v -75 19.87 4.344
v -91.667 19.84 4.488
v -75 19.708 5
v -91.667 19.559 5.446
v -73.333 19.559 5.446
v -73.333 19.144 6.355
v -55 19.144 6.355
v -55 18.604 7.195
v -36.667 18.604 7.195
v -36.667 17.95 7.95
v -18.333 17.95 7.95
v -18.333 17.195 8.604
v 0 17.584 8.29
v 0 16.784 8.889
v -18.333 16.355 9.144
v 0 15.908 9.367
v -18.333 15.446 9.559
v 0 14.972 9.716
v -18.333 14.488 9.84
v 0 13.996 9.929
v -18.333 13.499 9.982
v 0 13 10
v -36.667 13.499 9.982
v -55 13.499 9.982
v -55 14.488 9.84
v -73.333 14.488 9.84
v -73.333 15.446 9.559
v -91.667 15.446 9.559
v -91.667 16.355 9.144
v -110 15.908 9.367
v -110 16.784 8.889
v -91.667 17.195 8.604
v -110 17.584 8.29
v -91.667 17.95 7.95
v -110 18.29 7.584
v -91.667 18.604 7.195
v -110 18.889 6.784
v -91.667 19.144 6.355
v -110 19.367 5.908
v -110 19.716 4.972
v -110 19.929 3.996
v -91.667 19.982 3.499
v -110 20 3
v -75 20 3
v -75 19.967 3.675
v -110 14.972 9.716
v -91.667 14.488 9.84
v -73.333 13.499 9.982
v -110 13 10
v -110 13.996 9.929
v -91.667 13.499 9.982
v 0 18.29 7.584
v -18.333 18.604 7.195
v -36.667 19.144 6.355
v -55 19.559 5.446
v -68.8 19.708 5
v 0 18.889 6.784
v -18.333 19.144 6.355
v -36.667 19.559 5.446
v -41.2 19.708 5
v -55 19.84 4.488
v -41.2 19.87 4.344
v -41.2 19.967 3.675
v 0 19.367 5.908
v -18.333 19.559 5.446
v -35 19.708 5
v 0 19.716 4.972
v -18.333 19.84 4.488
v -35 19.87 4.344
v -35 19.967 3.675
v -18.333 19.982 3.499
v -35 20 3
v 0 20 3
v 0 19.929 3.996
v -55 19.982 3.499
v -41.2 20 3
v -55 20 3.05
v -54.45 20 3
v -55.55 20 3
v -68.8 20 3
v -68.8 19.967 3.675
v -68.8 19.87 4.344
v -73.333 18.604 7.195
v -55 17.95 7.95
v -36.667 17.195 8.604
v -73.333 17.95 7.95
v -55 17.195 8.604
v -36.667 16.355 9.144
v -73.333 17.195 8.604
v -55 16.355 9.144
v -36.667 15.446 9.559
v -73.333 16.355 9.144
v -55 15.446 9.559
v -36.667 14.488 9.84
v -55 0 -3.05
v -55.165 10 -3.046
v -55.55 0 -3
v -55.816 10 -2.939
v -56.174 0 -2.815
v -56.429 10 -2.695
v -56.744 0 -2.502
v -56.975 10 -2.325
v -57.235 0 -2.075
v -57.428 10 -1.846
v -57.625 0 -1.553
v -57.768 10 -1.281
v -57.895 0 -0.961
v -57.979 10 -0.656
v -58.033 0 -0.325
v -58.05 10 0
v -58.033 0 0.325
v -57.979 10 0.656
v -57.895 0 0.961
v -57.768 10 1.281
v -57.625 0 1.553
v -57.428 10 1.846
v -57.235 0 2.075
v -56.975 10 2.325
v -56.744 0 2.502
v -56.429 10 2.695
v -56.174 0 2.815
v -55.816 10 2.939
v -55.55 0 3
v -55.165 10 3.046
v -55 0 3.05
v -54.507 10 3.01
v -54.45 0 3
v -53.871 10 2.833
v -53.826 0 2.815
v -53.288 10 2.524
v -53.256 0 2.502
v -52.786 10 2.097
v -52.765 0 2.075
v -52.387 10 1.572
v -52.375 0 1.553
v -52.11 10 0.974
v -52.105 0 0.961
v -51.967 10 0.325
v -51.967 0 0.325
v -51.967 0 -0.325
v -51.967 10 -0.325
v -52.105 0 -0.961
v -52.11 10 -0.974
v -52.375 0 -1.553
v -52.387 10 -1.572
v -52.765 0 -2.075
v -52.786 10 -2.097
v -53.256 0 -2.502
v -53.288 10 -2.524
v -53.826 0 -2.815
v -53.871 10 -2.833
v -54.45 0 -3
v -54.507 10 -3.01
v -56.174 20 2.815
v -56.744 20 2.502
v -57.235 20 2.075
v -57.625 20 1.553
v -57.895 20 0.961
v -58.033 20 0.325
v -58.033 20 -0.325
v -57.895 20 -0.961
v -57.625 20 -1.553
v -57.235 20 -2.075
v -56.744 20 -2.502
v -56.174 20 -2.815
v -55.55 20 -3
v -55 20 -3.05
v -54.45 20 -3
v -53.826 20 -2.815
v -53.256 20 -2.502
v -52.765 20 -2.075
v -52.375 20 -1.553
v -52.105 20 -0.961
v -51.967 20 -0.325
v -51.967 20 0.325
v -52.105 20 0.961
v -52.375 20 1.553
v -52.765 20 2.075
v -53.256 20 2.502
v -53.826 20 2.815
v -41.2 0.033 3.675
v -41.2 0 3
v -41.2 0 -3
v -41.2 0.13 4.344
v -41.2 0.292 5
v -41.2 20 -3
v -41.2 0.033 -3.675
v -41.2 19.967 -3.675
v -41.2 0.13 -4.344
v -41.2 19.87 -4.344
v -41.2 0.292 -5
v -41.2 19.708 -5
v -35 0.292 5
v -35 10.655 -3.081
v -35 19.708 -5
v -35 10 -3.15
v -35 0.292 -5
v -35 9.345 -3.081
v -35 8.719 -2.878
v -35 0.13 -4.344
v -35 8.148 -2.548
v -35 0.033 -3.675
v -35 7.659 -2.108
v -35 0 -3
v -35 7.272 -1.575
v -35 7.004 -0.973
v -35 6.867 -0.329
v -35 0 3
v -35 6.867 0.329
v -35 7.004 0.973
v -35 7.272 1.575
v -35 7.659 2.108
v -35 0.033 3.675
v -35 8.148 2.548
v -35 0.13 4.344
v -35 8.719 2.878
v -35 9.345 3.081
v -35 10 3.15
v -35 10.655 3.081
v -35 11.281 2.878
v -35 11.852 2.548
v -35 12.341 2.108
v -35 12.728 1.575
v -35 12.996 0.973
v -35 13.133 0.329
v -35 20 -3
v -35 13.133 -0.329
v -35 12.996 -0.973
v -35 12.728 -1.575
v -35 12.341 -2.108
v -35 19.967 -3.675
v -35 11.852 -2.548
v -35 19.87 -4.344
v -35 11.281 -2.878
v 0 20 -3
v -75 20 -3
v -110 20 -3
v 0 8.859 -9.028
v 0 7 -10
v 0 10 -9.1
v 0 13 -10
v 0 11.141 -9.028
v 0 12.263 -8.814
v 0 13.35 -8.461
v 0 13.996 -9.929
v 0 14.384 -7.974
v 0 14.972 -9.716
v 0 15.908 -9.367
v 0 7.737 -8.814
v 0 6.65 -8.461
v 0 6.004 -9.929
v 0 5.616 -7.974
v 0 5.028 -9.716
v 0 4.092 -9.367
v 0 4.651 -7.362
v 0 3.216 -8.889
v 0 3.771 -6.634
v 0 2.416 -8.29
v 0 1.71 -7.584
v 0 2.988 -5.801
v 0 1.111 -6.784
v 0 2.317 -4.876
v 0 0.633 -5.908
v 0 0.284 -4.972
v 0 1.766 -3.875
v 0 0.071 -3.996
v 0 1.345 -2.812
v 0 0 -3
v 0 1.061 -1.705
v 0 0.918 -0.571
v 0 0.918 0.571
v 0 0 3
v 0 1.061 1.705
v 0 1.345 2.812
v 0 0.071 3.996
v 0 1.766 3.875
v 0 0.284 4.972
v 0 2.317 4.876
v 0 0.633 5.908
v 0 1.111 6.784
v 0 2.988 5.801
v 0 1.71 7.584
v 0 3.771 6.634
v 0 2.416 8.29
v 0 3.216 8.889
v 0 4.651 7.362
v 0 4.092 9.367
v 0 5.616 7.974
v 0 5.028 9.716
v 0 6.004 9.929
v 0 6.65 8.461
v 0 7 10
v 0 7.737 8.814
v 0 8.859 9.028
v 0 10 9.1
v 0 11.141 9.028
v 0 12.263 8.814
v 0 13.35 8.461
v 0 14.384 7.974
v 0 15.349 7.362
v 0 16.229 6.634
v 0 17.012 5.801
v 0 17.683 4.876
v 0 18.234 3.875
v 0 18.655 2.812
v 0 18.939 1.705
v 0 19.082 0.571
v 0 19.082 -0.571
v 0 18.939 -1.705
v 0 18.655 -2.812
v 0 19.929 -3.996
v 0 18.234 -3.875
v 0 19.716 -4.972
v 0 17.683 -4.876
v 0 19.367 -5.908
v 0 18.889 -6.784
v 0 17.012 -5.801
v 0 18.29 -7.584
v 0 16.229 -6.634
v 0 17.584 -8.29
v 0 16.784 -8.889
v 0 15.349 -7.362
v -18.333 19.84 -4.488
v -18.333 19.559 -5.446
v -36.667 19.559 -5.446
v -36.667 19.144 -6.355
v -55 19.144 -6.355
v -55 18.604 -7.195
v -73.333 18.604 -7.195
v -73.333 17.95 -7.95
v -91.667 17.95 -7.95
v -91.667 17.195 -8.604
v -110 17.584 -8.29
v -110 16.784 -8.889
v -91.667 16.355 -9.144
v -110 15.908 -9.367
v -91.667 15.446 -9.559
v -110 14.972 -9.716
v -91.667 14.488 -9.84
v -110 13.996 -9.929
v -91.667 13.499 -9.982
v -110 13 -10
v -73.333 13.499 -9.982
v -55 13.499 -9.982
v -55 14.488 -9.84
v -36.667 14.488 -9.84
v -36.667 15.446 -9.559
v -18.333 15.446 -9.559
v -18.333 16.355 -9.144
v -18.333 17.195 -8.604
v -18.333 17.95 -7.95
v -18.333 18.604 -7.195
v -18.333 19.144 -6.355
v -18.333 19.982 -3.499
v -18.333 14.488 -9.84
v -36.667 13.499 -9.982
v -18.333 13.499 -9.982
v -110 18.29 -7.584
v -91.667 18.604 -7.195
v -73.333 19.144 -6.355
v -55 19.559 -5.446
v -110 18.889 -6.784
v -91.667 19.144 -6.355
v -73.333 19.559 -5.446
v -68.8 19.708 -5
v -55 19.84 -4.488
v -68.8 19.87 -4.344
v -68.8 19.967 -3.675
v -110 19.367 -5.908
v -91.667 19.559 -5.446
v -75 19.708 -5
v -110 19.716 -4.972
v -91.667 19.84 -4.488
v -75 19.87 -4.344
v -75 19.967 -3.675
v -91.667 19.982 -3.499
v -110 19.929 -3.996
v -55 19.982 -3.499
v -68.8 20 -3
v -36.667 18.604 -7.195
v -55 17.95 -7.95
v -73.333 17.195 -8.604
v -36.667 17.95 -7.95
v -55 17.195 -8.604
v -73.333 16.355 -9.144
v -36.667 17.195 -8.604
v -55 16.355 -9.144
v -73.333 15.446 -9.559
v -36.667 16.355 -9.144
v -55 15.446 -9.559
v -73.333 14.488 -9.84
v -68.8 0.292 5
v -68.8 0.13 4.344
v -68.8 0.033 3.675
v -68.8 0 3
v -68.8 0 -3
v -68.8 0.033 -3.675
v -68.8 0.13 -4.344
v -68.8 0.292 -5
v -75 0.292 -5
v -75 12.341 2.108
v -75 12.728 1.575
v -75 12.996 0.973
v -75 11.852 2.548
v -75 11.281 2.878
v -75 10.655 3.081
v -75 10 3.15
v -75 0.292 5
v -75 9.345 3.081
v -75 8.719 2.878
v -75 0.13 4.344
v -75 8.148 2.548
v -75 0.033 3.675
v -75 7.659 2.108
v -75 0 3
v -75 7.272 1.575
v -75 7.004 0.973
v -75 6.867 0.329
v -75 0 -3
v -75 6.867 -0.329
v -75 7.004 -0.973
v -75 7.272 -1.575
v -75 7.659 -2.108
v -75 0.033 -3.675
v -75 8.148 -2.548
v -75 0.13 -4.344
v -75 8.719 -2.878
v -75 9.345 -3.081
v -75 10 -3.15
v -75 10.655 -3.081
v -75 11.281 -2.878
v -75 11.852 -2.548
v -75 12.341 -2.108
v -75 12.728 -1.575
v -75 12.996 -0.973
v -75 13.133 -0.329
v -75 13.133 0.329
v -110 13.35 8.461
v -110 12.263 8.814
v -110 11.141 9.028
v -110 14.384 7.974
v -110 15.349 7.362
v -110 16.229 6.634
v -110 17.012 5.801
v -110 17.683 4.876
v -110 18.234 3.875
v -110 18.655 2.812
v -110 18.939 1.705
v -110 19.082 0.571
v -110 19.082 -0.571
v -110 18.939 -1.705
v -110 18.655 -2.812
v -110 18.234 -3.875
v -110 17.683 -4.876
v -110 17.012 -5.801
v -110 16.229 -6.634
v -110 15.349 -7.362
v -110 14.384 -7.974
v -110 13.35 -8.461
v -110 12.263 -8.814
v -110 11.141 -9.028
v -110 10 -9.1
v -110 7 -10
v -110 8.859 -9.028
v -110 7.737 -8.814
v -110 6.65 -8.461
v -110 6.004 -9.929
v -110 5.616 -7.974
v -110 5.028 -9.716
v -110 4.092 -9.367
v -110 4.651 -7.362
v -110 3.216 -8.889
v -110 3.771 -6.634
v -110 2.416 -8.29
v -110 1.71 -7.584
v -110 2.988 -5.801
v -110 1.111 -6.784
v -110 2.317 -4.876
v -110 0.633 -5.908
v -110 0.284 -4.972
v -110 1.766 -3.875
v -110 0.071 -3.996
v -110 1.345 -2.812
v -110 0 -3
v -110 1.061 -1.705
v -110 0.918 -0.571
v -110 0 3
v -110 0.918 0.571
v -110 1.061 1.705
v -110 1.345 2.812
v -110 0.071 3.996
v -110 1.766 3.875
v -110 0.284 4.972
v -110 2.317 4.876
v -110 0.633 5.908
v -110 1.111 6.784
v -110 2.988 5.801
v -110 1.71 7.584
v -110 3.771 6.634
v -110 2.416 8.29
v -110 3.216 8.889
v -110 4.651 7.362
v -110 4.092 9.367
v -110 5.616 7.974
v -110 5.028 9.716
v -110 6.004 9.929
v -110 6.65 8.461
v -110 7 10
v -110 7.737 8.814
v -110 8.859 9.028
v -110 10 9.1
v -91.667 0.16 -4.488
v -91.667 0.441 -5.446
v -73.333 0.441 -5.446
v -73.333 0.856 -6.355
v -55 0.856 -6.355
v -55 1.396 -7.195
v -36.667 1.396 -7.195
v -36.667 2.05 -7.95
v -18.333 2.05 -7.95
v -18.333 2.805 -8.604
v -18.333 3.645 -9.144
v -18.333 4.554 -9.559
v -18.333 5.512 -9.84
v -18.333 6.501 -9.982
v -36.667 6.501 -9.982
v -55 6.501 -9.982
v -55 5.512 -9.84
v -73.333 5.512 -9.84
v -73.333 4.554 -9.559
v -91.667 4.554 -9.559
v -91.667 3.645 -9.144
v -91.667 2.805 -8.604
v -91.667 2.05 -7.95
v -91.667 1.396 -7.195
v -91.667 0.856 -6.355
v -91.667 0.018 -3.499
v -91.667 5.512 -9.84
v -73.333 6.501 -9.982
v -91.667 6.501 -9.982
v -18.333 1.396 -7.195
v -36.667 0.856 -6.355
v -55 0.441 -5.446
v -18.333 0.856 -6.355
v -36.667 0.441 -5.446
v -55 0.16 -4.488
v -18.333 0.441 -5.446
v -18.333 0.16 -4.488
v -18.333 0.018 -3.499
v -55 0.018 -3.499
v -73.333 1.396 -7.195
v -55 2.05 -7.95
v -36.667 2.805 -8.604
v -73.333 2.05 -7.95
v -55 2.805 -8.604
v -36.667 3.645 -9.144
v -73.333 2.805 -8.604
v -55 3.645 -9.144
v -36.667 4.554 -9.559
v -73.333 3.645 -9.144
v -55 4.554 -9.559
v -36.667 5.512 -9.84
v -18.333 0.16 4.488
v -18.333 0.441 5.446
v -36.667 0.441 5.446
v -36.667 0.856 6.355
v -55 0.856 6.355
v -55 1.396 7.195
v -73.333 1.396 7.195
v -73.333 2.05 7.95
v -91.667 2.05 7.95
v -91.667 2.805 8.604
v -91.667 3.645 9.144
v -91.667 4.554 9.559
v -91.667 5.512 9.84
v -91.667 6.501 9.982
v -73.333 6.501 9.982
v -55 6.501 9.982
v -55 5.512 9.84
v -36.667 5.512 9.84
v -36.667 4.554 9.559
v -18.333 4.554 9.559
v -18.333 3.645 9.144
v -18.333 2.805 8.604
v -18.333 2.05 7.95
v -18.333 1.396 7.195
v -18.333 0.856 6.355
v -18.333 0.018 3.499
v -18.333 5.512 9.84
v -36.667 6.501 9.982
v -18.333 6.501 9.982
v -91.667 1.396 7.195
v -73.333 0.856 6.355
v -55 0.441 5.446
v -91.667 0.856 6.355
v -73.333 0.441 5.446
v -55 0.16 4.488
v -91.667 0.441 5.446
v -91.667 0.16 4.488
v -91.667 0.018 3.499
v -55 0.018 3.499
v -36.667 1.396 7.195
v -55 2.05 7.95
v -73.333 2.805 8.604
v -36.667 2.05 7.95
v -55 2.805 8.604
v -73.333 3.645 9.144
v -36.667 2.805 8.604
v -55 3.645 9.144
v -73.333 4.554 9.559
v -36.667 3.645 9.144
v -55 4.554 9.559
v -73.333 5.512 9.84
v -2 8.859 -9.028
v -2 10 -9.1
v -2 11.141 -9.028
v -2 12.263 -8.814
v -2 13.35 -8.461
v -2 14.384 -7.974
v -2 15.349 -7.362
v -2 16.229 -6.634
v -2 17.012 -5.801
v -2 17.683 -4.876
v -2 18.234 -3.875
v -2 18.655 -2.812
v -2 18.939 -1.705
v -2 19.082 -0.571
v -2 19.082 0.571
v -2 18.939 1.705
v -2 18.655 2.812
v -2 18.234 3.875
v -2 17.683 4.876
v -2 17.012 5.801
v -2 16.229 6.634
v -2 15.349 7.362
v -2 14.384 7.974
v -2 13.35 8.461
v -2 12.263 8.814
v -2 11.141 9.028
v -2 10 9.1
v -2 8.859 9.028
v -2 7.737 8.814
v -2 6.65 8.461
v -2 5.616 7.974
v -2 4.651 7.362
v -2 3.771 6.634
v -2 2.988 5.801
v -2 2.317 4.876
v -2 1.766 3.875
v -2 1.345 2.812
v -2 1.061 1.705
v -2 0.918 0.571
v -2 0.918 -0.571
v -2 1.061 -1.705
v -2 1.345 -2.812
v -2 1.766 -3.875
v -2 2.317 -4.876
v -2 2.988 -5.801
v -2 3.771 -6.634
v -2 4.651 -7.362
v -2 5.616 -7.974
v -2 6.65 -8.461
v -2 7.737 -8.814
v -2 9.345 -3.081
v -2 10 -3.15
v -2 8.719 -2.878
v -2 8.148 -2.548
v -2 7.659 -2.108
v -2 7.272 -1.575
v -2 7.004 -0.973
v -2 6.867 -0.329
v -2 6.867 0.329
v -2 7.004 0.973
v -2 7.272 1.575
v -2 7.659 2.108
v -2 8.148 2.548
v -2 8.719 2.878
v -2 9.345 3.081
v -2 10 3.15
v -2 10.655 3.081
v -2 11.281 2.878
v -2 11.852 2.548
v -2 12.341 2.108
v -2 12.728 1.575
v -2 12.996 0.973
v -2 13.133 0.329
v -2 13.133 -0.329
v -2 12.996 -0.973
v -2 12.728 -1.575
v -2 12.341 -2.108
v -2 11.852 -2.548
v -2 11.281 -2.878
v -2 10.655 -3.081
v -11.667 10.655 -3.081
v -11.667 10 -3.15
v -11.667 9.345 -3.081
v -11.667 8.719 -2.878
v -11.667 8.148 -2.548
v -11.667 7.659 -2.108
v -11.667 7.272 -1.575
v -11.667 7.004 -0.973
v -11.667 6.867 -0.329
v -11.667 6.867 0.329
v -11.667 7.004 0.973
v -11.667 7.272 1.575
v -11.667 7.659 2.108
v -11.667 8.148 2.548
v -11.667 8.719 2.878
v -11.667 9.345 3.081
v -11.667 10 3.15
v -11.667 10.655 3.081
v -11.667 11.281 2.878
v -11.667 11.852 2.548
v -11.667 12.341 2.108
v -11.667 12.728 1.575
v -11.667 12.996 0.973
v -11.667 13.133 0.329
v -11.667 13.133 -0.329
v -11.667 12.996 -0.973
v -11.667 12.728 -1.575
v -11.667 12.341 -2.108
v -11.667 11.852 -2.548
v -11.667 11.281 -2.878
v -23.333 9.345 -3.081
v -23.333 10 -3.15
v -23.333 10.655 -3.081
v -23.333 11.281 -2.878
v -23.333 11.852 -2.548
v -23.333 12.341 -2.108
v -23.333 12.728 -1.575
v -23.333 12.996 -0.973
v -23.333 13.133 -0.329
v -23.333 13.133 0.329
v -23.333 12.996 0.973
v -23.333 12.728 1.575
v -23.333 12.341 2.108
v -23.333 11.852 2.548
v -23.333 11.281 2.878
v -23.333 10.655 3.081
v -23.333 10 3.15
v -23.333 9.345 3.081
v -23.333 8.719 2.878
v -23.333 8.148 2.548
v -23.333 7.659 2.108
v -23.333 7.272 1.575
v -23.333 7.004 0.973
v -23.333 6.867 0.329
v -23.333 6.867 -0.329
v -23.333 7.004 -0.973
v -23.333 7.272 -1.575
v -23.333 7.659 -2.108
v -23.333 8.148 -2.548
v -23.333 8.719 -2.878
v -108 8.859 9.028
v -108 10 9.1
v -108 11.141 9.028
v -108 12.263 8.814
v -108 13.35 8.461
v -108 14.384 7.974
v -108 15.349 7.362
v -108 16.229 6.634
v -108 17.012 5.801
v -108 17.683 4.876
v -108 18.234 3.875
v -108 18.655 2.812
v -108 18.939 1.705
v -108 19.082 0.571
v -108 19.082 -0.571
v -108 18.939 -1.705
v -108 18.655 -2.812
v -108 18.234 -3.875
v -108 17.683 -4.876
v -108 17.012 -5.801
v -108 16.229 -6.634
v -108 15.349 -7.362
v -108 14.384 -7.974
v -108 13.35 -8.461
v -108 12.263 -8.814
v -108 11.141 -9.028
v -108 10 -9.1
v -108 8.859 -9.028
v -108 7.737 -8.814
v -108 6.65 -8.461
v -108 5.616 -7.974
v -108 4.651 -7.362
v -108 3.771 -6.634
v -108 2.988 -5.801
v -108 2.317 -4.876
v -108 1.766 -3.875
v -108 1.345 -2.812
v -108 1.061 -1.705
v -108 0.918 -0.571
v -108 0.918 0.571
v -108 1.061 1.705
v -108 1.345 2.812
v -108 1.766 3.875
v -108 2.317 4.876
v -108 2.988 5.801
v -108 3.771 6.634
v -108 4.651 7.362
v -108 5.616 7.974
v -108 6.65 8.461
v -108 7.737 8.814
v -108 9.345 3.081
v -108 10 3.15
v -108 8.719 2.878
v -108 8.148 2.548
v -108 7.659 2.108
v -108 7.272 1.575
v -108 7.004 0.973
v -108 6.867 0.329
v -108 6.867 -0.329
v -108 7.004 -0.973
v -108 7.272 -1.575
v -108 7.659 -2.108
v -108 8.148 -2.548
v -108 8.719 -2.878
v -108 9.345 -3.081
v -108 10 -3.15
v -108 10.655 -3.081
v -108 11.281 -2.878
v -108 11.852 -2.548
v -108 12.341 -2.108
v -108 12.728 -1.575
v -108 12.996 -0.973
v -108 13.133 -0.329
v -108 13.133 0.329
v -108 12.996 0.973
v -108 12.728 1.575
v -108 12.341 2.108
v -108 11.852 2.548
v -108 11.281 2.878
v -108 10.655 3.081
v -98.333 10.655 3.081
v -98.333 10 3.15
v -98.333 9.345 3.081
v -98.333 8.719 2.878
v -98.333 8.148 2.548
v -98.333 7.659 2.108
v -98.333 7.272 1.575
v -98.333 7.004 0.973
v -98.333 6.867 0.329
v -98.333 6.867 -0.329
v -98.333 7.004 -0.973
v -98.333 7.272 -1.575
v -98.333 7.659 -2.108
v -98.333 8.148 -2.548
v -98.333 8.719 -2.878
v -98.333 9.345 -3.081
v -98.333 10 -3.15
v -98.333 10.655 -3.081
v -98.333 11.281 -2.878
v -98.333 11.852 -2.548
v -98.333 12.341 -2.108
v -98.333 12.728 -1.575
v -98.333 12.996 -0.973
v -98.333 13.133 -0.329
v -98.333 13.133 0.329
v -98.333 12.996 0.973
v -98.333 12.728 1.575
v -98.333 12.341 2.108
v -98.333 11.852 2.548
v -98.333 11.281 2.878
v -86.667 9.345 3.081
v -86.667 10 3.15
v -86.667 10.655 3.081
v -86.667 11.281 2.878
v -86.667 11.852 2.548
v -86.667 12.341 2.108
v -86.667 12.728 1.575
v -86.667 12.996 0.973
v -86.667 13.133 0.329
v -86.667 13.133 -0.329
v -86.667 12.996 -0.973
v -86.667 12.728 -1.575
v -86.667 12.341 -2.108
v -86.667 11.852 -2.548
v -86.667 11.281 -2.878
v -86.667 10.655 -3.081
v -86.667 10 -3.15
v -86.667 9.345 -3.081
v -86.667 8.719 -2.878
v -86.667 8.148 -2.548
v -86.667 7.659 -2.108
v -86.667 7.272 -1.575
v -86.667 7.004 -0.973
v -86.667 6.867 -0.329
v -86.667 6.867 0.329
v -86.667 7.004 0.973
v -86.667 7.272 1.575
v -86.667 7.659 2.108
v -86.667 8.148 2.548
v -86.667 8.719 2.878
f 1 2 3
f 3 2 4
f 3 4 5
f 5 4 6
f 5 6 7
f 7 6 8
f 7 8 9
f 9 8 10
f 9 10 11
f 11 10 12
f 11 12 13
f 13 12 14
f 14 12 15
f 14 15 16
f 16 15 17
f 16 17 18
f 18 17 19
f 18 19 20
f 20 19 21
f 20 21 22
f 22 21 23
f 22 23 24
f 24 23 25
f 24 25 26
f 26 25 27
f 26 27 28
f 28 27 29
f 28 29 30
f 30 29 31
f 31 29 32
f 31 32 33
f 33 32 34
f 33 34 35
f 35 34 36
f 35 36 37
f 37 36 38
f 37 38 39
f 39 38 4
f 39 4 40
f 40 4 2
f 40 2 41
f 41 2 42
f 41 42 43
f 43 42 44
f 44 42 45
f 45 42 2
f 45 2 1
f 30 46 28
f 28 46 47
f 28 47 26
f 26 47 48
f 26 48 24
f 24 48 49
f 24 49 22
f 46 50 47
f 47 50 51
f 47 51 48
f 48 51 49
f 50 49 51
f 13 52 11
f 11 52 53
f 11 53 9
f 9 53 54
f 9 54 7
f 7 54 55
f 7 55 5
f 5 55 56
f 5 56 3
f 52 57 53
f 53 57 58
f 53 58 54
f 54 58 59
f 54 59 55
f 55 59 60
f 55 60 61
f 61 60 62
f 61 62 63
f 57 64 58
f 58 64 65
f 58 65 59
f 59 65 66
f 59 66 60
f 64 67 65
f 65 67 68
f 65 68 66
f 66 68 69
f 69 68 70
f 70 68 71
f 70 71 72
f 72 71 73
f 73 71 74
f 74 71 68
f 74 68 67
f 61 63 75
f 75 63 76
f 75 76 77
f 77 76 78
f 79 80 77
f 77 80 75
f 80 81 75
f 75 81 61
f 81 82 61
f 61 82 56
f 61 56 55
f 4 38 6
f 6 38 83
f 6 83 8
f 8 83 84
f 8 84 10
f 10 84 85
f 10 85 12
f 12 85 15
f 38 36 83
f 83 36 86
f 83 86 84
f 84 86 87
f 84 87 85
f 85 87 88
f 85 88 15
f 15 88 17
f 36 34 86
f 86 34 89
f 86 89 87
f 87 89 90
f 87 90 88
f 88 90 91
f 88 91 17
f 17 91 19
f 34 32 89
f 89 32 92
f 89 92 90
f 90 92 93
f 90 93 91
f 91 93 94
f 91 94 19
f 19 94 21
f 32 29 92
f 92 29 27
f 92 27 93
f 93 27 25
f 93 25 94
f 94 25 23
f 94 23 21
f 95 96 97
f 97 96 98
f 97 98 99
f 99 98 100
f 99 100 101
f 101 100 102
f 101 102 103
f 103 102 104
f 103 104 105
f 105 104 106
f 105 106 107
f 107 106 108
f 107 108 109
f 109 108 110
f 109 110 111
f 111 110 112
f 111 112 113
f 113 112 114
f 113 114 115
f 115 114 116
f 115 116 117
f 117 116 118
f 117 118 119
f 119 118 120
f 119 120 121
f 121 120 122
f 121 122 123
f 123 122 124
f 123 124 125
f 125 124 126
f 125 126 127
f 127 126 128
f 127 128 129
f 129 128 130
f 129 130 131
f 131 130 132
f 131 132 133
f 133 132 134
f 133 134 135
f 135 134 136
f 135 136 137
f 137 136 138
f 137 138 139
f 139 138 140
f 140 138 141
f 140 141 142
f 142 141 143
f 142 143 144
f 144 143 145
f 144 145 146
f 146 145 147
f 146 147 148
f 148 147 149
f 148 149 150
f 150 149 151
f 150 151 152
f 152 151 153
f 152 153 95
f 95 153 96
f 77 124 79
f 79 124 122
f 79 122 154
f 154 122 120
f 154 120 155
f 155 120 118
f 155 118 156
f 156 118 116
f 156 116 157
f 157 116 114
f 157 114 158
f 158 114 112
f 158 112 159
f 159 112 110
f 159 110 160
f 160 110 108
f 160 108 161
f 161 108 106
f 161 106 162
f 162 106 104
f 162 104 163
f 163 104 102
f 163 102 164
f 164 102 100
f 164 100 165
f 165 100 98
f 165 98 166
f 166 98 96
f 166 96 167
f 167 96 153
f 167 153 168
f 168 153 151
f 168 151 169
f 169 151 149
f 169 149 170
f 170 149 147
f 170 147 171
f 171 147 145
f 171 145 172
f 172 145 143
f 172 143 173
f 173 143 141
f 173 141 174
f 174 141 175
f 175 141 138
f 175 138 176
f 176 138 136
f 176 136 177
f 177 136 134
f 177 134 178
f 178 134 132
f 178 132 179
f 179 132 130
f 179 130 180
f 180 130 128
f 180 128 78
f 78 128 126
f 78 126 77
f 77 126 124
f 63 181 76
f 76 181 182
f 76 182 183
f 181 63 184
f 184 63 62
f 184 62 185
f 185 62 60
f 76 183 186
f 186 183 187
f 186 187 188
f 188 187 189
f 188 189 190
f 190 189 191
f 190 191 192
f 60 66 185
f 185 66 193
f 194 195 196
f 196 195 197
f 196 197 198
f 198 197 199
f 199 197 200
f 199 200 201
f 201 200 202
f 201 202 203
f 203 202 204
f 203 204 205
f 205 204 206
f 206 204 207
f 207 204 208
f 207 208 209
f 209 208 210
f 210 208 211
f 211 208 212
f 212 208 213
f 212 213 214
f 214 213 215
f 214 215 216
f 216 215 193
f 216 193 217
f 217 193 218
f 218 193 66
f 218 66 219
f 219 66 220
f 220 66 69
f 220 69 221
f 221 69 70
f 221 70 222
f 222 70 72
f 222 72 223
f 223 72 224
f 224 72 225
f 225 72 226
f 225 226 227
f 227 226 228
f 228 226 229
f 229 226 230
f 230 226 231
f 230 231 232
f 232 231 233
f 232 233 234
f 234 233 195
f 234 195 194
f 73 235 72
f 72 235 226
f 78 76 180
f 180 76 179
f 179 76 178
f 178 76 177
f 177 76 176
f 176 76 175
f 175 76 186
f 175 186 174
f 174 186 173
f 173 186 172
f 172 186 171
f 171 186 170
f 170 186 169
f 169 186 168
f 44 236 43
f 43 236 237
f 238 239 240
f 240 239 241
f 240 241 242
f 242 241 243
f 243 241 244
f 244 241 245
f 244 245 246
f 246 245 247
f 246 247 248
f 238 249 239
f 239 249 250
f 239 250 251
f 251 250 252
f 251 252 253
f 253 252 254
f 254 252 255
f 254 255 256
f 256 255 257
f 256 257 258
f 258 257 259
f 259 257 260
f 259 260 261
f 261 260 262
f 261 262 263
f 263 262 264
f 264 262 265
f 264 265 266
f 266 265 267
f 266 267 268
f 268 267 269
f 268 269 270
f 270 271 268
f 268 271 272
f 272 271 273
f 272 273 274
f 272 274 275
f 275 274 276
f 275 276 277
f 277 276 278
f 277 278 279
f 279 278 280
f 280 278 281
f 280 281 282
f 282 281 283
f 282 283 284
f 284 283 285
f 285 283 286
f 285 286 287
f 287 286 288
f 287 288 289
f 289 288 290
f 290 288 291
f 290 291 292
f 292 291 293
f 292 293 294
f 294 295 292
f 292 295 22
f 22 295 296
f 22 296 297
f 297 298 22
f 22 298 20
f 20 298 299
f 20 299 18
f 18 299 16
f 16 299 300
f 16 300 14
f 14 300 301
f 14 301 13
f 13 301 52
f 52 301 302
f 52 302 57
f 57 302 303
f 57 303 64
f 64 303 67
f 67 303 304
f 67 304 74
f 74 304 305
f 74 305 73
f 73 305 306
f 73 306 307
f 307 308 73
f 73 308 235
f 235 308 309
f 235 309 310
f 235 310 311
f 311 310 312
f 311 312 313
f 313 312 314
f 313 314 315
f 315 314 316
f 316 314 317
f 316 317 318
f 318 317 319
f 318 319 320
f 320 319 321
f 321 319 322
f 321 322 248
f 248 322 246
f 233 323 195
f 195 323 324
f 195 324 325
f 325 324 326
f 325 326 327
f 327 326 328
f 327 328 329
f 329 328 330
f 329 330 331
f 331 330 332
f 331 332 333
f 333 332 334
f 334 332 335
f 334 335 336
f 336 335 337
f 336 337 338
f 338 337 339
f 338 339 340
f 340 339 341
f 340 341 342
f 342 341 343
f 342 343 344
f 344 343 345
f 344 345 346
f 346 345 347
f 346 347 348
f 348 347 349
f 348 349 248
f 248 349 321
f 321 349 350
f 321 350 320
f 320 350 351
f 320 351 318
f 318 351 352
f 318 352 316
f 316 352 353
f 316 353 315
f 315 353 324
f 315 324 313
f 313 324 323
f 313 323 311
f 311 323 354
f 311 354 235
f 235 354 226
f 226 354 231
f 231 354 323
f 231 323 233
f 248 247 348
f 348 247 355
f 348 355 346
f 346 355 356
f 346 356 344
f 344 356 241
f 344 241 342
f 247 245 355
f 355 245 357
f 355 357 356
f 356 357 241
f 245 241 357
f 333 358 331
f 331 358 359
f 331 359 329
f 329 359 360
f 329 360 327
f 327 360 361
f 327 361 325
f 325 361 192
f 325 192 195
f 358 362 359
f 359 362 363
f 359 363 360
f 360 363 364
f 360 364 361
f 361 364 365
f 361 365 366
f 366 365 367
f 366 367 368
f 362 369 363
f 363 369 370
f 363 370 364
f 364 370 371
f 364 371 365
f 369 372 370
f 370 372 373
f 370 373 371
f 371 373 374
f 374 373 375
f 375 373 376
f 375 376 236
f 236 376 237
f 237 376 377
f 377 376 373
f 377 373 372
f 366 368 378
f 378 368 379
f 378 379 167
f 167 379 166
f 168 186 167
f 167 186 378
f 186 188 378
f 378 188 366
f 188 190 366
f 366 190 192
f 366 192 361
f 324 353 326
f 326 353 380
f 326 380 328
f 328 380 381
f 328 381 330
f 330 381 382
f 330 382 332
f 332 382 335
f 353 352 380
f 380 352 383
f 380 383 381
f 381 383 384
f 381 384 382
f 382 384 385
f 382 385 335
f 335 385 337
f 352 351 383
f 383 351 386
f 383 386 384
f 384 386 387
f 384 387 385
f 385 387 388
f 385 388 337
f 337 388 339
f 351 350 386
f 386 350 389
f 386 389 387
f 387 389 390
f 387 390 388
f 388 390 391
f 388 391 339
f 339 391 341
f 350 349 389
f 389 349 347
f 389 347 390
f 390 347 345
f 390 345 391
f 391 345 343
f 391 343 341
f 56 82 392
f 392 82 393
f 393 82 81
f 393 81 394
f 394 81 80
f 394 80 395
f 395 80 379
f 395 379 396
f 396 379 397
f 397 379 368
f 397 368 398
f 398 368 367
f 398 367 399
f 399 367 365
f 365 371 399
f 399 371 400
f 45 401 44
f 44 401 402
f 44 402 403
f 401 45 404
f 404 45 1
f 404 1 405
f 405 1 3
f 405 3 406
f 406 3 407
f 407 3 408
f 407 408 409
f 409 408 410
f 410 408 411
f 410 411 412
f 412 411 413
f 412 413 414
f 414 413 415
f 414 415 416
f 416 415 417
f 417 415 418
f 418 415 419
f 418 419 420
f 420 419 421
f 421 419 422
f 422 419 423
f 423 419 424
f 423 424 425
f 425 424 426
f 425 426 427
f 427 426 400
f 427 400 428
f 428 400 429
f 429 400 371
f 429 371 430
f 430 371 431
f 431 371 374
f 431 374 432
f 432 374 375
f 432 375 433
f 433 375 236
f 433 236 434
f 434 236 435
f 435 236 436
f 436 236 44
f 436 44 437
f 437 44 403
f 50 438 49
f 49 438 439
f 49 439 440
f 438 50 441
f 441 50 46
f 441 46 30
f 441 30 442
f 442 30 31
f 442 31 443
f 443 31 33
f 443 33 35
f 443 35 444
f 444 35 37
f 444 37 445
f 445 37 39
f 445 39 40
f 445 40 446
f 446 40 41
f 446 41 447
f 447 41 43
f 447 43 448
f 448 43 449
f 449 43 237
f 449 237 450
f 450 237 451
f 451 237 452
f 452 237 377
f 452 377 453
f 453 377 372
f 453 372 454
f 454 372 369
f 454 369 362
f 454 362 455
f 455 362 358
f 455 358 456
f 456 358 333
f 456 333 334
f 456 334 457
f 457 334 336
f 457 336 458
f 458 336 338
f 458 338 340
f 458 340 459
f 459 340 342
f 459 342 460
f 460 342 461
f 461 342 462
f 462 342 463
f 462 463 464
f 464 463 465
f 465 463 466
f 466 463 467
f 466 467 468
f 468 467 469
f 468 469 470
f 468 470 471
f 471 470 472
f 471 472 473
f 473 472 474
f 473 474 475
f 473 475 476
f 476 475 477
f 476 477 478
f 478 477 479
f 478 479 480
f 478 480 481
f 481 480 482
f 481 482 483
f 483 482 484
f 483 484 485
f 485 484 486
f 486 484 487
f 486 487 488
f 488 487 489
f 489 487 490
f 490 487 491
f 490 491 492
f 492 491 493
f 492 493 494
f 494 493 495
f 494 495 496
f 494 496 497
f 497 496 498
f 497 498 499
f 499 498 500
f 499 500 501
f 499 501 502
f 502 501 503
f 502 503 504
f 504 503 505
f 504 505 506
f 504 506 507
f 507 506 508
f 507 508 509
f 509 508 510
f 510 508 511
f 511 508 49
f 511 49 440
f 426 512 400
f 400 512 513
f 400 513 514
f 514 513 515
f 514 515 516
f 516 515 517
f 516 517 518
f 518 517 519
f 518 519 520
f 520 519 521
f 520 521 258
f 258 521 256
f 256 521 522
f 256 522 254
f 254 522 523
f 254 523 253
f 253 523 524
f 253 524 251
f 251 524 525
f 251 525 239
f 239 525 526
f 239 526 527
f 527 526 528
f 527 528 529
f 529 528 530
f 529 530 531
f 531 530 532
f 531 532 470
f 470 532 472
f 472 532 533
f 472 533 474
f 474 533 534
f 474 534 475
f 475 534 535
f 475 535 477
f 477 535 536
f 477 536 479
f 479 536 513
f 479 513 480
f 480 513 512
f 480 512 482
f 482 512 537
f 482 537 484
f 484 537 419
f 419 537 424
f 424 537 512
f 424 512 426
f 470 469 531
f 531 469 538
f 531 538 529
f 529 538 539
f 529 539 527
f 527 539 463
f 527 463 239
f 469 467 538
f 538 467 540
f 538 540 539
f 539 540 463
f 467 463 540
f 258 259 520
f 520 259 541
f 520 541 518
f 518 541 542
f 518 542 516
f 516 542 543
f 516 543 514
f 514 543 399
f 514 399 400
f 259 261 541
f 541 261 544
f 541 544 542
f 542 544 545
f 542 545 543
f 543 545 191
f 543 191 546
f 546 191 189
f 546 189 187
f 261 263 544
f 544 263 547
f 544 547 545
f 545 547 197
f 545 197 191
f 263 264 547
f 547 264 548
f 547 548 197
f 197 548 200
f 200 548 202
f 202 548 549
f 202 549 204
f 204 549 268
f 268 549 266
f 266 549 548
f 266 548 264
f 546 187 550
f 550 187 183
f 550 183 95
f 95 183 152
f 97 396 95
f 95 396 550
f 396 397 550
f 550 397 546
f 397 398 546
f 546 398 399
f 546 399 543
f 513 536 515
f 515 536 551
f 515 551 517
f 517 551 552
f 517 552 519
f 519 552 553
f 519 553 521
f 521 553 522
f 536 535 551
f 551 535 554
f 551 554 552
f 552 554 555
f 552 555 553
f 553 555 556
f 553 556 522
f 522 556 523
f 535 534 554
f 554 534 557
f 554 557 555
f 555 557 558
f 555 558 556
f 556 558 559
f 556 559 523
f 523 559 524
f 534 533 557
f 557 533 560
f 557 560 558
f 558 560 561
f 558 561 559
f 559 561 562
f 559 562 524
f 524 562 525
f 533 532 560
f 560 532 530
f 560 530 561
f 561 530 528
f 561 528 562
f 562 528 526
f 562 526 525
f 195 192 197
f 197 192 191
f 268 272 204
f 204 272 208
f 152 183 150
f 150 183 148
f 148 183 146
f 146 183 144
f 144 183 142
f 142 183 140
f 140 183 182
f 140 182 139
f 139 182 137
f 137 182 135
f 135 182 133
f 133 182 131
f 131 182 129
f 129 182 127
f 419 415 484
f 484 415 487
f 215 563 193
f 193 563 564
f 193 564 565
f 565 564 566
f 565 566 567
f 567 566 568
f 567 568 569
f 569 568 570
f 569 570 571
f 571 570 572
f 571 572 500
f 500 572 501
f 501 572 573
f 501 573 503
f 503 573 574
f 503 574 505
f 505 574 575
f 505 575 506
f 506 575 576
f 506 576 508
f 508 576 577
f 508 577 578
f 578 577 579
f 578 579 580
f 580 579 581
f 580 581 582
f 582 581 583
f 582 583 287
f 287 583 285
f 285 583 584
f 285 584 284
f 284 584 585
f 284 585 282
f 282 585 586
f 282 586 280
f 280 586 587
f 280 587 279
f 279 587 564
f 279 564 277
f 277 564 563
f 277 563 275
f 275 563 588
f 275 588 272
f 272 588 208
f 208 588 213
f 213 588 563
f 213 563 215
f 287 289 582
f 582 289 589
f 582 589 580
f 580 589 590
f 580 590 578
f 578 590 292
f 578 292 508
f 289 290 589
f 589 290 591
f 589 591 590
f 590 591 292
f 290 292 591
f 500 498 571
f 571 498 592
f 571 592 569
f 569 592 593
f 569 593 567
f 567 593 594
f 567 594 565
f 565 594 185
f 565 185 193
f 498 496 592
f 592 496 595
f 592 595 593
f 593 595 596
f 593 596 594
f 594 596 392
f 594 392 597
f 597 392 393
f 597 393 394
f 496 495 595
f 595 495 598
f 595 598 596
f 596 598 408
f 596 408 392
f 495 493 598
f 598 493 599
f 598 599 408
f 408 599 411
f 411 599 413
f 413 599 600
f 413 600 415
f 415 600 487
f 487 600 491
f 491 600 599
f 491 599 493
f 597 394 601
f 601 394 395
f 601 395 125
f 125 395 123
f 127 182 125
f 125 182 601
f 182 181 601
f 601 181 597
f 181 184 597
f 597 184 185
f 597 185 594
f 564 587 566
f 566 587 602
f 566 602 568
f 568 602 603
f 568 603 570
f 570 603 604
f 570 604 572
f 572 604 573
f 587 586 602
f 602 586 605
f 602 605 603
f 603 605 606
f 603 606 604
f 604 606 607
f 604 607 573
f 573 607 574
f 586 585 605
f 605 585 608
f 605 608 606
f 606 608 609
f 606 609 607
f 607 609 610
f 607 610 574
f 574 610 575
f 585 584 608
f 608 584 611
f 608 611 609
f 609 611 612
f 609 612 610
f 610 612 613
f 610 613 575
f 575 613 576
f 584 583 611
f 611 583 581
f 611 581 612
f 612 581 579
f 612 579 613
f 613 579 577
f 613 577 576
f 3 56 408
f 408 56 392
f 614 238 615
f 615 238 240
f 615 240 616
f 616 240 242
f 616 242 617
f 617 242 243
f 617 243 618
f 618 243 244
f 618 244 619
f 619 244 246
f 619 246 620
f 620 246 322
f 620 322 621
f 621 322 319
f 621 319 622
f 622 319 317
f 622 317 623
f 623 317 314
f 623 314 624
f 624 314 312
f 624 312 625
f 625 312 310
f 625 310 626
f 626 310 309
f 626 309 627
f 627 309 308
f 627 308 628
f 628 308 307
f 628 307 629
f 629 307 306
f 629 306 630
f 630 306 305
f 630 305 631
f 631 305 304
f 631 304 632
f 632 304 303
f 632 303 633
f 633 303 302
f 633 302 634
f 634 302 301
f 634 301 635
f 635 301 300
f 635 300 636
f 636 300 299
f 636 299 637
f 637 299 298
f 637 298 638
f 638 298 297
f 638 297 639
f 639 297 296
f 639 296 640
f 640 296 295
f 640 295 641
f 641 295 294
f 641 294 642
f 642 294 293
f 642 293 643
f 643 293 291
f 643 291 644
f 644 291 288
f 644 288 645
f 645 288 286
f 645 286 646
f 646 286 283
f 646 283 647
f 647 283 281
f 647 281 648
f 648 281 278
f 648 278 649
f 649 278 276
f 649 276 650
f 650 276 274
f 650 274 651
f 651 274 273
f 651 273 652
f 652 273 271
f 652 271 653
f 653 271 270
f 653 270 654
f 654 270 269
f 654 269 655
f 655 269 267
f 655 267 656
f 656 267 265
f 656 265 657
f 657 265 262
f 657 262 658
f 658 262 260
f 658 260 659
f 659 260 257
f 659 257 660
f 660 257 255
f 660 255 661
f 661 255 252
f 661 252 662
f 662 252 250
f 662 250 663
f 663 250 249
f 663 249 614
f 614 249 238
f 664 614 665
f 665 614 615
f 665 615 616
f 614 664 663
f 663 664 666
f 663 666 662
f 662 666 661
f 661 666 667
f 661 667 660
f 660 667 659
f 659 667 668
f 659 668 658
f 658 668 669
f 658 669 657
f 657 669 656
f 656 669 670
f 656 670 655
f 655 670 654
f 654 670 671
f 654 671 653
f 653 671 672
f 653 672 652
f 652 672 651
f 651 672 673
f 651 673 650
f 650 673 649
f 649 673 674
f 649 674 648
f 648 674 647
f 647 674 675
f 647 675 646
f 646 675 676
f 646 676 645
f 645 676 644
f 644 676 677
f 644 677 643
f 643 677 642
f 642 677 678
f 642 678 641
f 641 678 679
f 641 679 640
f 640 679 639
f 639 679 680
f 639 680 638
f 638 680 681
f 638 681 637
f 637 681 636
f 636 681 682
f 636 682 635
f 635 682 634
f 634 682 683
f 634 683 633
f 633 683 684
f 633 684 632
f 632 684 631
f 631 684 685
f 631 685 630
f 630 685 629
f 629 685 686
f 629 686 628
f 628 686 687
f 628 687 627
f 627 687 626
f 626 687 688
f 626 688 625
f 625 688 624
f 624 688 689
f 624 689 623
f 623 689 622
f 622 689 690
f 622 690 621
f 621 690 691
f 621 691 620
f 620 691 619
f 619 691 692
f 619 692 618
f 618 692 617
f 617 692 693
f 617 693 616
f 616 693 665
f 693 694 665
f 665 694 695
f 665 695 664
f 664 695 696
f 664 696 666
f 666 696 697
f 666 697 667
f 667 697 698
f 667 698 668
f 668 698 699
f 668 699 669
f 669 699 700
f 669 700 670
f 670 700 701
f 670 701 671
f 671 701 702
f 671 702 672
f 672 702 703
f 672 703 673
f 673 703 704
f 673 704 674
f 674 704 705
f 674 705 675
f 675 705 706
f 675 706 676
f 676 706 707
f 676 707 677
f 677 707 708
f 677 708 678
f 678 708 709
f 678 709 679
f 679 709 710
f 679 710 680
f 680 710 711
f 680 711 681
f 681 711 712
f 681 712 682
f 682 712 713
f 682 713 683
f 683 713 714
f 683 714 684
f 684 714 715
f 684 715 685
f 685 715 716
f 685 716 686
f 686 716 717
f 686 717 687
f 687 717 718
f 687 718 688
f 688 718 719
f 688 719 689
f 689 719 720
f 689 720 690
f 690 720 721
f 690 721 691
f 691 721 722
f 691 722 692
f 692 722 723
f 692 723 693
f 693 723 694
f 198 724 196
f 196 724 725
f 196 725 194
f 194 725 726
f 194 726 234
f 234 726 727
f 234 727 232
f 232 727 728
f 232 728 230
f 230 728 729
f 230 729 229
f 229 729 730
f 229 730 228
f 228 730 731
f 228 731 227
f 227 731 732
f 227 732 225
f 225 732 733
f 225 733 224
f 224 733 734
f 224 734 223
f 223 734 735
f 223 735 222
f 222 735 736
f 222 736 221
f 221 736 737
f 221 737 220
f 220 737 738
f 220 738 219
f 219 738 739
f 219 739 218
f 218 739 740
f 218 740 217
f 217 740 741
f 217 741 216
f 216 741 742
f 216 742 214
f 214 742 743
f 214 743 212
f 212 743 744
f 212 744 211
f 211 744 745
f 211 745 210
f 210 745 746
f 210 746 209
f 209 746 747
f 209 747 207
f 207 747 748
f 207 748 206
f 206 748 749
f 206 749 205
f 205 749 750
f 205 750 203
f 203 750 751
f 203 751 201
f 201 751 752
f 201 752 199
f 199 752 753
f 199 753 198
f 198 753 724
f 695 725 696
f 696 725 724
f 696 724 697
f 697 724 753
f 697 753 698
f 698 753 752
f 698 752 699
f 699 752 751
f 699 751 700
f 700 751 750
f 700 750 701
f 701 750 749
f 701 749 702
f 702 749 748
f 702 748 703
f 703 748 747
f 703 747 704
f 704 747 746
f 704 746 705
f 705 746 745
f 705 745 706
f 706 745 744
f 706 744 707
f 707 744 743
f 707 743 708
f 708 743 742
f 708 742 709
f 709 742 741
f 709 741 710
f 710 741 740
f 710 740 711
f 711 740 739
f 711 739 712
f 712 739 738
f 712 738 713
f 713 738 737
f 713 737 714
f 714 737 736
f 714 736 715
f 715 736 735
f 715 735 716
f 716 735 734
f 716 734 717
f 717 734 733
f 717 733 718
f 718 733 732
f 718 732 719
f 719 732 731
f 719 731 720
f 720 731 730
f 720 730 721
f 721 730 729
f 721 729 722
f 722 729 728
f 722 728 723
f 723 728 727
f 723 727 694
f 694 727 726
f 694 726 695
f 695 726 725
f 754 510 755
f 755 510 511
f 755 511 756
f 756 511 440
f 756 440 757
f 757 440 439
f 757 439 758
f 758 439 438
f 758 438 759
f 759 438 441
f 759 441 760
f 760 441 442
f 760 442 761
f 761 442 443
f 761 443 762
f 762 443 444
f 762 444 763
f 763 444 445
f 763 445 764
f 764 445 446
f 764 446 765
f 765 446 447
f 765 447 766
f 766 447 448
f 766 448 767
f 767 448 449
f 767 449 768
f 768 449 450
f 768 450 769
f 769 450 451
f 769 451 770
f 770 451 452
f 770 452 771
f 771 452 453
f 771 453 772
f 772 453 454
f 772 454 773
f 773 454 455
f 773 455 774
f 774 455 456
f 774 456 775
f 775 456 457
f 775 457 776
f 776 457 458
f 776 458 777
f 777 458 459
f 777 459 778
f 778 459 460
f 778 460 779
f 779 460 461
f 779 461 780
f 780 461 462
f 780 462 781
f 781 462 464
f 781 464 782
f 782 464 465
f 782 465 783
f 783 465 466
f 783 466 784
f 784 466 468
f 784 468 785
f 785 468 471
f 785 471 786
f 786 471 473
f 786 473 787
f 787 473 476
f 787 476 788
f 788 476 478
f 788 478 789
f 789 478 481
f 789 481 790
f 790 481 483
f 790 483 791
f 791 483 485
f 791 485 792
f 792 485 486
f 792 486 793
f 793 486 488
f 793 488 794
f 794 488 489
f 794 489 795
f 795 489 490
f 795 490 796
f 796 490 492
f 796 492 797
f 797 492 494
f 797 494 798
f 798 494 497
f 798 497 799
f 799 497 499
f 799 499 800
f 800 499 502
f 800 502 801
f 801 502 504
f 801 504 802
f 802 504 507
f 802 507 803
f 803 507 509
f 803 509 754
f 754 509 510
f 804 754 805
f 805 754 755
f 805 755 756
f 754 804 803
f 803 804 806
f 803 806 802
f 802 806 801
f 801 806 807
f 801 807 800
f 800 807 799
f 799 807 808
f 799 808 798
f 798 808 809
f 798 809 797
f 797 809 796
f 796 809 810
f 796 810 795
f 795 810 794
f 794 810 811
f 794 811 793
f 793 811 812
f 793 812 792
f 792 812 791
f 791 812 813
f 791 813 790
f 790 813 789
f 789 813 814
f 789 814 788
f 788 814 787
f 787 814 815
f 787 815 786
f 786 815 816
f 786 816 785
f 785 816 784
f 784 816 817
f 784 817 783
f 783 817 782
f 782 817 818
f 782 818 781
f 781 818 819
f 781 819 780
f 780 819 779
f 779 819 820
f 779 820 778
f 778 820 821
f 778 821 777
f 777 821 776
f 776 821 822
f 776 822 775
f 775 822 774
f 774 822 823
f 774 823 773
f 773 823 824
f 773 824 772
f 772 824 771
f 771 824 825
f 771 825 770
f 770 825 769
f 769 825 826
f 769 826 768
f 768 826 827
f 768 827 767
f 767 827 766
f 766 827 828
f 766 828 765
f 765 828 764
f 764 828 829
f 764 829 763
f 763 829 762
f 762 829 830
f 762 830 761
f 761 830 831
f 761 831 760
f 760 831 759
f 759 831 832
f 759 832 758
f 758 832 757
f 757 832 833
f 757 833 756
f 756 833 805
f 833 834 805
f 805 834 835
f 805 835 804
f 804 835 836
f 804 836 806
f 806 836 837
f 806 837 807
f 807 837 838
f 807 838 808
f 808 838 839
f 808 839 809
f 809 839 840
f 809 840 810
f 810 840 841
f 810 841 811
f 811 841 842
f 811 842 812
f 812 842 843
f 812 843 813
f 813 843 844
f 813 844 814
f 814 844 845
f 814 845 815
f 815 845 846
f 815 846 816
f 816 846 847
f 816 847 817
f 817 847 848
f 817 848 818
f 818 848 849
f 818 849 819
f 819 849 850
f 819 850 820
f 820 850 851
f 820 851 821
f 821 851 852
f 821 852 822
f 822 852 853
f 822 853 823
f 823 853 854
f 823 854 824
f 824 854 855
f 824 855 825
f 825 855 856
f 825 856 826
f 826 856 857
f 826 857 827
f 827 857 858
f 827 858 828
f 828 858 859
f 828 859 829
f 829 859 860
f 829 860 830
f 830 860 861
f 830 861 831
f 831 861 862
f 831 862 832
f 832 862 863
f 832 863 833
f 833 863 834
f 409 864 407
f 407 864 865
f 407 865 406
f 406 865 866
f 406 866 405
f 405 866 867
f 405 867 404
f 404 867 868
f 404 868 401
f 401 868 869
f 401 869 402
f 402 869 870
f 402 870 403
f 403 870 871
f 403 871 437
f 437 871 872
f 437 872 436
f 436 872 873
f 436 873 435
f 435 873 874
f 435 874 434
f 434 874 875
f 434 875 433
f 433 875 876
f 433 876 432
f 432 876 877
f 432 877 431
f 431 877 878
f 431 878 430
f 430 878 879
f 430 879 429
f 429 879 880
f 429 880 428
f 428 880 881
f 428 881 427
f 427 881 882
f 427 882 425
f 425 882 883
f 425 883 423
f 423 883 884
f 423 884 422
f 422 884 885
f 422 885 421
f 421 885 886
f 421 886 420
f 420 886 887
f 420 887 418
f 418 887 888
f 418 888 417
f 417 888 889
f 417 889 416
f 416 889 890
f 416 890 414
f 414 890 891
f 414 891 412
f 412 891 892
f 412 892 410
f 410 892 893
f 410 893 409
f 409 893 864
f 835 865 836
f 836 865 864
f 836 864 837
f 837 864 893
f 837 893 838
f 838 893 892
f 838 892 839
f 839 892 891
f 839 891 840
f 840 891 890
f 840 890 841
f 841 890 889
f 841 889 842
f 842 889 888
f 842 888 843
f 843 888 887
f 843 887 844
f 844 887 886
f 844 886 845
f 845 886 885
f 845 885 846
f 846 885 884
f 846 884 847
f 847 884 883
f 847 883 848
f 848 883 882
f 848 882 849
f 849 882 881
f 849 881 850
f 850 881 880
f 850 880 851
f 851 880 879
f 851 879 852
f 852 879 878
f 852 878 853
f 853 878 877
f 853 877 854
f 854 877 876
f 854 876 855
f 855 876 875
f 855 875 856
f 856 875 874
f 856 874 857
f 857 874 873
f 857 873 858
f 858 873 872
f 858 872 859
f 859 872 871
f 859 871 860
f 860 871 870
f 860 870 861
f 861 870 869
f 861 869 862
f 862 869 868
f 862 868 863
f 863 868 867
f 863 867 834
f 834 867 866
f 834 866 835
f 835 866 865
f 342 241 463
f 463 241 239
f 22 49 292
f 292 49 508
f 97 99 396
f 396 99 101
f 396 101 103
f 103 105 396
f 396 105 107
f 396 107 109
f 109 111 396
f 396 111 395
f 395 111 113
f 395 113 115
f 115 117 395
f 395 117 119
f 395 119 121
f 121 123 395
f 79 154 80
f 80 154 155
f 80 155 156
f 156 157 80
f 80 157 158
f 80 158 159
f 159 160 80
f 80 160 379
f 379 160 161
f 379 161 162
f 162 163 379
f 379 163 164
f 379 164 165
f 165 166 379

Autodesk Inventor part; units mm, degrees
ref_plane "YZ Plane" through (0, 0, 0) normal (1, 0, 0) x (0, 1, 0)
ref_plane "XZ Plane" through (0, 0, 0) normal (0, 1, 0) x (-1, 0, 0)
ref_plane "XY Plane" through (0, 0, 0) normal (0, 0, 1) x (1, 0, 0)
sketch "Boceto1" plane through (0, 0, 0) normal (0, 1, 0) x (-1, 0, 0)
  line L0 (0, 10) -> (110, 10)
  line L1 (110, 10) -> (110, -10)
  line L2 (110, -10) -> (0, -10)
  line L3 (0, -10) -> (0, 10)
  line L4 (0, 0) -> (110, 0) construction
  line L5 (68.8, -5) -> (75, -5)
  line L6 (75, -5) -> (75, 5)
  line L7 (75, 5) -> (68.8, 5)
  line L8 (68.8, 5) -> (68.8, -5)
  line L9 (71.9, -5) -> (71.9, -10) construction
  line L10 (71.9, 5) -> (71.9, 10) construction
  line L11 (55, -10) -> (55, 10) construction
  line L12 (41.2, -5) -> (35, -5)
  line L13 (35, -5) -> (35, 5)
  line L14 (35, 5) -> (41.2, 5)
  line L15 (41.2, 5) -> (41.2, -5)
  line L16 (58.6062, -3.6062) -> (51.3938, -3.6062) construction
  line L17 (51.3938, -3.6062) -> (51.3938, 3.6062) construction
  line L18 (51.3938, 3.6062) -> (58.6062, 3.6062) construction
  line L19 (58.6062, 3.6062) -> (58.6062, -3.6062) construction
  circle A0 centre (55, 0) radius 4 construction
  circle A1 centre (55, 0) radius 3.05
  circle A2 centre (55, 0) radius 5.1 construction
  dimension "d28" = 10.2
  dimension "d6" = 110
  dimension "d10" = 10
  dimension "d12" = 5
  dimension "d13" = 20
  dimension "d16" = 6.2
  dimension "d18" = 8
  dimension "d19" = 35
  dimension "d27" = 6.1
extrude "Extrusión1" add sketch "Boceto1" along normal blind 20
sketch "Boceto3" plane through (-110, 0, -10) normal (-1, 0, 0) x (0, 0, 1)
  circle A0 centre (10, 10) radius 3.15
  line L0 (20, 20) -> (0, 20) construction
  line L1 (0, 20) -> (20, 0) construction
  line L2 (0, 0) -> (20, 0) construction
  line L3 (20, 20) -> (0, 0) construction
  point P0 (10, 0)
  dimension "d4" = 6.3
extrude "Extrusión2" cut sketch "Boceto3" against normal up to next
sketch "Boceto5" plane through (-110, 0, -10) normal (-1, 0, 0) x (0, 0, 1)
  circle A0 centre (10, 10) radius 3.15 projected
  circle A1 centre (10, 10) radius 9.1
  point P0 (10, 0)
  dimension "d8" = 18.2
extrude "Extrusión3" cut sketch "Boceto5" against normal blind 2
sketch "Boceto6" plane through (0, 0, 10) normal (1, 0, 0) x (0, 0, -1)
  circle A0 centre (10, 10) radius 3.15 projected
  circle A1 centre (10, 10) radius 9.1 projected
  point P0 (10, 0)
extrude "Extrusión4" cut sketch "Boceto6" against normal up to next contours A0
sketch "Boceto7" plane through (0, 0, 10) normal (1, 0, 0) x (0, 0, -1)
  circle A0 centre (10, 10) radius 9.1 projected
  point P0 (10, 0)
extrude "Extrusión5" cut sketch "Boceto7" against normal blind 2
fillet "Empalme1" radius 7 4 edges at (-55, 0, 10) (-55, 0, -10) (-55, 20, -10) (-55, 20, 10)
